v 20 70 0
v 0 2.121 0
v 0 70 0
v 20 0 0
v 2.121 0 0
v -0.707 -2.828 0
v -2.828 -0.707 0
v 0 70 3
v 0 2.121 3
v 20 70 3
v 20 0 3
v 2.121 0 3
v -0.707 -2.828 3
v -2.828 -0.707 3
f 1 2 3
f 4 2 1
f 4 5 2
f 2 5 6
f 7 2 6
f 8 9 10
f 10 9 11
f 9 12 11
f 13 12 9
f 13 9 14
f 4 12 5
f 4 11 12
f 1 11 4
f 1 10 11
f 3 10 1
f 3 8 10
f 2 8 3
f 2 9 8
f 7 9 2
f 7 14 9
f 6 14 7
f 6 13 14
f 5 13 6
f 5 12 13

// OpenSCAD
linear_extrude(3) union() {
    square([20, 70]);
    rotate(-45) square([3, 5], center=true);
}
